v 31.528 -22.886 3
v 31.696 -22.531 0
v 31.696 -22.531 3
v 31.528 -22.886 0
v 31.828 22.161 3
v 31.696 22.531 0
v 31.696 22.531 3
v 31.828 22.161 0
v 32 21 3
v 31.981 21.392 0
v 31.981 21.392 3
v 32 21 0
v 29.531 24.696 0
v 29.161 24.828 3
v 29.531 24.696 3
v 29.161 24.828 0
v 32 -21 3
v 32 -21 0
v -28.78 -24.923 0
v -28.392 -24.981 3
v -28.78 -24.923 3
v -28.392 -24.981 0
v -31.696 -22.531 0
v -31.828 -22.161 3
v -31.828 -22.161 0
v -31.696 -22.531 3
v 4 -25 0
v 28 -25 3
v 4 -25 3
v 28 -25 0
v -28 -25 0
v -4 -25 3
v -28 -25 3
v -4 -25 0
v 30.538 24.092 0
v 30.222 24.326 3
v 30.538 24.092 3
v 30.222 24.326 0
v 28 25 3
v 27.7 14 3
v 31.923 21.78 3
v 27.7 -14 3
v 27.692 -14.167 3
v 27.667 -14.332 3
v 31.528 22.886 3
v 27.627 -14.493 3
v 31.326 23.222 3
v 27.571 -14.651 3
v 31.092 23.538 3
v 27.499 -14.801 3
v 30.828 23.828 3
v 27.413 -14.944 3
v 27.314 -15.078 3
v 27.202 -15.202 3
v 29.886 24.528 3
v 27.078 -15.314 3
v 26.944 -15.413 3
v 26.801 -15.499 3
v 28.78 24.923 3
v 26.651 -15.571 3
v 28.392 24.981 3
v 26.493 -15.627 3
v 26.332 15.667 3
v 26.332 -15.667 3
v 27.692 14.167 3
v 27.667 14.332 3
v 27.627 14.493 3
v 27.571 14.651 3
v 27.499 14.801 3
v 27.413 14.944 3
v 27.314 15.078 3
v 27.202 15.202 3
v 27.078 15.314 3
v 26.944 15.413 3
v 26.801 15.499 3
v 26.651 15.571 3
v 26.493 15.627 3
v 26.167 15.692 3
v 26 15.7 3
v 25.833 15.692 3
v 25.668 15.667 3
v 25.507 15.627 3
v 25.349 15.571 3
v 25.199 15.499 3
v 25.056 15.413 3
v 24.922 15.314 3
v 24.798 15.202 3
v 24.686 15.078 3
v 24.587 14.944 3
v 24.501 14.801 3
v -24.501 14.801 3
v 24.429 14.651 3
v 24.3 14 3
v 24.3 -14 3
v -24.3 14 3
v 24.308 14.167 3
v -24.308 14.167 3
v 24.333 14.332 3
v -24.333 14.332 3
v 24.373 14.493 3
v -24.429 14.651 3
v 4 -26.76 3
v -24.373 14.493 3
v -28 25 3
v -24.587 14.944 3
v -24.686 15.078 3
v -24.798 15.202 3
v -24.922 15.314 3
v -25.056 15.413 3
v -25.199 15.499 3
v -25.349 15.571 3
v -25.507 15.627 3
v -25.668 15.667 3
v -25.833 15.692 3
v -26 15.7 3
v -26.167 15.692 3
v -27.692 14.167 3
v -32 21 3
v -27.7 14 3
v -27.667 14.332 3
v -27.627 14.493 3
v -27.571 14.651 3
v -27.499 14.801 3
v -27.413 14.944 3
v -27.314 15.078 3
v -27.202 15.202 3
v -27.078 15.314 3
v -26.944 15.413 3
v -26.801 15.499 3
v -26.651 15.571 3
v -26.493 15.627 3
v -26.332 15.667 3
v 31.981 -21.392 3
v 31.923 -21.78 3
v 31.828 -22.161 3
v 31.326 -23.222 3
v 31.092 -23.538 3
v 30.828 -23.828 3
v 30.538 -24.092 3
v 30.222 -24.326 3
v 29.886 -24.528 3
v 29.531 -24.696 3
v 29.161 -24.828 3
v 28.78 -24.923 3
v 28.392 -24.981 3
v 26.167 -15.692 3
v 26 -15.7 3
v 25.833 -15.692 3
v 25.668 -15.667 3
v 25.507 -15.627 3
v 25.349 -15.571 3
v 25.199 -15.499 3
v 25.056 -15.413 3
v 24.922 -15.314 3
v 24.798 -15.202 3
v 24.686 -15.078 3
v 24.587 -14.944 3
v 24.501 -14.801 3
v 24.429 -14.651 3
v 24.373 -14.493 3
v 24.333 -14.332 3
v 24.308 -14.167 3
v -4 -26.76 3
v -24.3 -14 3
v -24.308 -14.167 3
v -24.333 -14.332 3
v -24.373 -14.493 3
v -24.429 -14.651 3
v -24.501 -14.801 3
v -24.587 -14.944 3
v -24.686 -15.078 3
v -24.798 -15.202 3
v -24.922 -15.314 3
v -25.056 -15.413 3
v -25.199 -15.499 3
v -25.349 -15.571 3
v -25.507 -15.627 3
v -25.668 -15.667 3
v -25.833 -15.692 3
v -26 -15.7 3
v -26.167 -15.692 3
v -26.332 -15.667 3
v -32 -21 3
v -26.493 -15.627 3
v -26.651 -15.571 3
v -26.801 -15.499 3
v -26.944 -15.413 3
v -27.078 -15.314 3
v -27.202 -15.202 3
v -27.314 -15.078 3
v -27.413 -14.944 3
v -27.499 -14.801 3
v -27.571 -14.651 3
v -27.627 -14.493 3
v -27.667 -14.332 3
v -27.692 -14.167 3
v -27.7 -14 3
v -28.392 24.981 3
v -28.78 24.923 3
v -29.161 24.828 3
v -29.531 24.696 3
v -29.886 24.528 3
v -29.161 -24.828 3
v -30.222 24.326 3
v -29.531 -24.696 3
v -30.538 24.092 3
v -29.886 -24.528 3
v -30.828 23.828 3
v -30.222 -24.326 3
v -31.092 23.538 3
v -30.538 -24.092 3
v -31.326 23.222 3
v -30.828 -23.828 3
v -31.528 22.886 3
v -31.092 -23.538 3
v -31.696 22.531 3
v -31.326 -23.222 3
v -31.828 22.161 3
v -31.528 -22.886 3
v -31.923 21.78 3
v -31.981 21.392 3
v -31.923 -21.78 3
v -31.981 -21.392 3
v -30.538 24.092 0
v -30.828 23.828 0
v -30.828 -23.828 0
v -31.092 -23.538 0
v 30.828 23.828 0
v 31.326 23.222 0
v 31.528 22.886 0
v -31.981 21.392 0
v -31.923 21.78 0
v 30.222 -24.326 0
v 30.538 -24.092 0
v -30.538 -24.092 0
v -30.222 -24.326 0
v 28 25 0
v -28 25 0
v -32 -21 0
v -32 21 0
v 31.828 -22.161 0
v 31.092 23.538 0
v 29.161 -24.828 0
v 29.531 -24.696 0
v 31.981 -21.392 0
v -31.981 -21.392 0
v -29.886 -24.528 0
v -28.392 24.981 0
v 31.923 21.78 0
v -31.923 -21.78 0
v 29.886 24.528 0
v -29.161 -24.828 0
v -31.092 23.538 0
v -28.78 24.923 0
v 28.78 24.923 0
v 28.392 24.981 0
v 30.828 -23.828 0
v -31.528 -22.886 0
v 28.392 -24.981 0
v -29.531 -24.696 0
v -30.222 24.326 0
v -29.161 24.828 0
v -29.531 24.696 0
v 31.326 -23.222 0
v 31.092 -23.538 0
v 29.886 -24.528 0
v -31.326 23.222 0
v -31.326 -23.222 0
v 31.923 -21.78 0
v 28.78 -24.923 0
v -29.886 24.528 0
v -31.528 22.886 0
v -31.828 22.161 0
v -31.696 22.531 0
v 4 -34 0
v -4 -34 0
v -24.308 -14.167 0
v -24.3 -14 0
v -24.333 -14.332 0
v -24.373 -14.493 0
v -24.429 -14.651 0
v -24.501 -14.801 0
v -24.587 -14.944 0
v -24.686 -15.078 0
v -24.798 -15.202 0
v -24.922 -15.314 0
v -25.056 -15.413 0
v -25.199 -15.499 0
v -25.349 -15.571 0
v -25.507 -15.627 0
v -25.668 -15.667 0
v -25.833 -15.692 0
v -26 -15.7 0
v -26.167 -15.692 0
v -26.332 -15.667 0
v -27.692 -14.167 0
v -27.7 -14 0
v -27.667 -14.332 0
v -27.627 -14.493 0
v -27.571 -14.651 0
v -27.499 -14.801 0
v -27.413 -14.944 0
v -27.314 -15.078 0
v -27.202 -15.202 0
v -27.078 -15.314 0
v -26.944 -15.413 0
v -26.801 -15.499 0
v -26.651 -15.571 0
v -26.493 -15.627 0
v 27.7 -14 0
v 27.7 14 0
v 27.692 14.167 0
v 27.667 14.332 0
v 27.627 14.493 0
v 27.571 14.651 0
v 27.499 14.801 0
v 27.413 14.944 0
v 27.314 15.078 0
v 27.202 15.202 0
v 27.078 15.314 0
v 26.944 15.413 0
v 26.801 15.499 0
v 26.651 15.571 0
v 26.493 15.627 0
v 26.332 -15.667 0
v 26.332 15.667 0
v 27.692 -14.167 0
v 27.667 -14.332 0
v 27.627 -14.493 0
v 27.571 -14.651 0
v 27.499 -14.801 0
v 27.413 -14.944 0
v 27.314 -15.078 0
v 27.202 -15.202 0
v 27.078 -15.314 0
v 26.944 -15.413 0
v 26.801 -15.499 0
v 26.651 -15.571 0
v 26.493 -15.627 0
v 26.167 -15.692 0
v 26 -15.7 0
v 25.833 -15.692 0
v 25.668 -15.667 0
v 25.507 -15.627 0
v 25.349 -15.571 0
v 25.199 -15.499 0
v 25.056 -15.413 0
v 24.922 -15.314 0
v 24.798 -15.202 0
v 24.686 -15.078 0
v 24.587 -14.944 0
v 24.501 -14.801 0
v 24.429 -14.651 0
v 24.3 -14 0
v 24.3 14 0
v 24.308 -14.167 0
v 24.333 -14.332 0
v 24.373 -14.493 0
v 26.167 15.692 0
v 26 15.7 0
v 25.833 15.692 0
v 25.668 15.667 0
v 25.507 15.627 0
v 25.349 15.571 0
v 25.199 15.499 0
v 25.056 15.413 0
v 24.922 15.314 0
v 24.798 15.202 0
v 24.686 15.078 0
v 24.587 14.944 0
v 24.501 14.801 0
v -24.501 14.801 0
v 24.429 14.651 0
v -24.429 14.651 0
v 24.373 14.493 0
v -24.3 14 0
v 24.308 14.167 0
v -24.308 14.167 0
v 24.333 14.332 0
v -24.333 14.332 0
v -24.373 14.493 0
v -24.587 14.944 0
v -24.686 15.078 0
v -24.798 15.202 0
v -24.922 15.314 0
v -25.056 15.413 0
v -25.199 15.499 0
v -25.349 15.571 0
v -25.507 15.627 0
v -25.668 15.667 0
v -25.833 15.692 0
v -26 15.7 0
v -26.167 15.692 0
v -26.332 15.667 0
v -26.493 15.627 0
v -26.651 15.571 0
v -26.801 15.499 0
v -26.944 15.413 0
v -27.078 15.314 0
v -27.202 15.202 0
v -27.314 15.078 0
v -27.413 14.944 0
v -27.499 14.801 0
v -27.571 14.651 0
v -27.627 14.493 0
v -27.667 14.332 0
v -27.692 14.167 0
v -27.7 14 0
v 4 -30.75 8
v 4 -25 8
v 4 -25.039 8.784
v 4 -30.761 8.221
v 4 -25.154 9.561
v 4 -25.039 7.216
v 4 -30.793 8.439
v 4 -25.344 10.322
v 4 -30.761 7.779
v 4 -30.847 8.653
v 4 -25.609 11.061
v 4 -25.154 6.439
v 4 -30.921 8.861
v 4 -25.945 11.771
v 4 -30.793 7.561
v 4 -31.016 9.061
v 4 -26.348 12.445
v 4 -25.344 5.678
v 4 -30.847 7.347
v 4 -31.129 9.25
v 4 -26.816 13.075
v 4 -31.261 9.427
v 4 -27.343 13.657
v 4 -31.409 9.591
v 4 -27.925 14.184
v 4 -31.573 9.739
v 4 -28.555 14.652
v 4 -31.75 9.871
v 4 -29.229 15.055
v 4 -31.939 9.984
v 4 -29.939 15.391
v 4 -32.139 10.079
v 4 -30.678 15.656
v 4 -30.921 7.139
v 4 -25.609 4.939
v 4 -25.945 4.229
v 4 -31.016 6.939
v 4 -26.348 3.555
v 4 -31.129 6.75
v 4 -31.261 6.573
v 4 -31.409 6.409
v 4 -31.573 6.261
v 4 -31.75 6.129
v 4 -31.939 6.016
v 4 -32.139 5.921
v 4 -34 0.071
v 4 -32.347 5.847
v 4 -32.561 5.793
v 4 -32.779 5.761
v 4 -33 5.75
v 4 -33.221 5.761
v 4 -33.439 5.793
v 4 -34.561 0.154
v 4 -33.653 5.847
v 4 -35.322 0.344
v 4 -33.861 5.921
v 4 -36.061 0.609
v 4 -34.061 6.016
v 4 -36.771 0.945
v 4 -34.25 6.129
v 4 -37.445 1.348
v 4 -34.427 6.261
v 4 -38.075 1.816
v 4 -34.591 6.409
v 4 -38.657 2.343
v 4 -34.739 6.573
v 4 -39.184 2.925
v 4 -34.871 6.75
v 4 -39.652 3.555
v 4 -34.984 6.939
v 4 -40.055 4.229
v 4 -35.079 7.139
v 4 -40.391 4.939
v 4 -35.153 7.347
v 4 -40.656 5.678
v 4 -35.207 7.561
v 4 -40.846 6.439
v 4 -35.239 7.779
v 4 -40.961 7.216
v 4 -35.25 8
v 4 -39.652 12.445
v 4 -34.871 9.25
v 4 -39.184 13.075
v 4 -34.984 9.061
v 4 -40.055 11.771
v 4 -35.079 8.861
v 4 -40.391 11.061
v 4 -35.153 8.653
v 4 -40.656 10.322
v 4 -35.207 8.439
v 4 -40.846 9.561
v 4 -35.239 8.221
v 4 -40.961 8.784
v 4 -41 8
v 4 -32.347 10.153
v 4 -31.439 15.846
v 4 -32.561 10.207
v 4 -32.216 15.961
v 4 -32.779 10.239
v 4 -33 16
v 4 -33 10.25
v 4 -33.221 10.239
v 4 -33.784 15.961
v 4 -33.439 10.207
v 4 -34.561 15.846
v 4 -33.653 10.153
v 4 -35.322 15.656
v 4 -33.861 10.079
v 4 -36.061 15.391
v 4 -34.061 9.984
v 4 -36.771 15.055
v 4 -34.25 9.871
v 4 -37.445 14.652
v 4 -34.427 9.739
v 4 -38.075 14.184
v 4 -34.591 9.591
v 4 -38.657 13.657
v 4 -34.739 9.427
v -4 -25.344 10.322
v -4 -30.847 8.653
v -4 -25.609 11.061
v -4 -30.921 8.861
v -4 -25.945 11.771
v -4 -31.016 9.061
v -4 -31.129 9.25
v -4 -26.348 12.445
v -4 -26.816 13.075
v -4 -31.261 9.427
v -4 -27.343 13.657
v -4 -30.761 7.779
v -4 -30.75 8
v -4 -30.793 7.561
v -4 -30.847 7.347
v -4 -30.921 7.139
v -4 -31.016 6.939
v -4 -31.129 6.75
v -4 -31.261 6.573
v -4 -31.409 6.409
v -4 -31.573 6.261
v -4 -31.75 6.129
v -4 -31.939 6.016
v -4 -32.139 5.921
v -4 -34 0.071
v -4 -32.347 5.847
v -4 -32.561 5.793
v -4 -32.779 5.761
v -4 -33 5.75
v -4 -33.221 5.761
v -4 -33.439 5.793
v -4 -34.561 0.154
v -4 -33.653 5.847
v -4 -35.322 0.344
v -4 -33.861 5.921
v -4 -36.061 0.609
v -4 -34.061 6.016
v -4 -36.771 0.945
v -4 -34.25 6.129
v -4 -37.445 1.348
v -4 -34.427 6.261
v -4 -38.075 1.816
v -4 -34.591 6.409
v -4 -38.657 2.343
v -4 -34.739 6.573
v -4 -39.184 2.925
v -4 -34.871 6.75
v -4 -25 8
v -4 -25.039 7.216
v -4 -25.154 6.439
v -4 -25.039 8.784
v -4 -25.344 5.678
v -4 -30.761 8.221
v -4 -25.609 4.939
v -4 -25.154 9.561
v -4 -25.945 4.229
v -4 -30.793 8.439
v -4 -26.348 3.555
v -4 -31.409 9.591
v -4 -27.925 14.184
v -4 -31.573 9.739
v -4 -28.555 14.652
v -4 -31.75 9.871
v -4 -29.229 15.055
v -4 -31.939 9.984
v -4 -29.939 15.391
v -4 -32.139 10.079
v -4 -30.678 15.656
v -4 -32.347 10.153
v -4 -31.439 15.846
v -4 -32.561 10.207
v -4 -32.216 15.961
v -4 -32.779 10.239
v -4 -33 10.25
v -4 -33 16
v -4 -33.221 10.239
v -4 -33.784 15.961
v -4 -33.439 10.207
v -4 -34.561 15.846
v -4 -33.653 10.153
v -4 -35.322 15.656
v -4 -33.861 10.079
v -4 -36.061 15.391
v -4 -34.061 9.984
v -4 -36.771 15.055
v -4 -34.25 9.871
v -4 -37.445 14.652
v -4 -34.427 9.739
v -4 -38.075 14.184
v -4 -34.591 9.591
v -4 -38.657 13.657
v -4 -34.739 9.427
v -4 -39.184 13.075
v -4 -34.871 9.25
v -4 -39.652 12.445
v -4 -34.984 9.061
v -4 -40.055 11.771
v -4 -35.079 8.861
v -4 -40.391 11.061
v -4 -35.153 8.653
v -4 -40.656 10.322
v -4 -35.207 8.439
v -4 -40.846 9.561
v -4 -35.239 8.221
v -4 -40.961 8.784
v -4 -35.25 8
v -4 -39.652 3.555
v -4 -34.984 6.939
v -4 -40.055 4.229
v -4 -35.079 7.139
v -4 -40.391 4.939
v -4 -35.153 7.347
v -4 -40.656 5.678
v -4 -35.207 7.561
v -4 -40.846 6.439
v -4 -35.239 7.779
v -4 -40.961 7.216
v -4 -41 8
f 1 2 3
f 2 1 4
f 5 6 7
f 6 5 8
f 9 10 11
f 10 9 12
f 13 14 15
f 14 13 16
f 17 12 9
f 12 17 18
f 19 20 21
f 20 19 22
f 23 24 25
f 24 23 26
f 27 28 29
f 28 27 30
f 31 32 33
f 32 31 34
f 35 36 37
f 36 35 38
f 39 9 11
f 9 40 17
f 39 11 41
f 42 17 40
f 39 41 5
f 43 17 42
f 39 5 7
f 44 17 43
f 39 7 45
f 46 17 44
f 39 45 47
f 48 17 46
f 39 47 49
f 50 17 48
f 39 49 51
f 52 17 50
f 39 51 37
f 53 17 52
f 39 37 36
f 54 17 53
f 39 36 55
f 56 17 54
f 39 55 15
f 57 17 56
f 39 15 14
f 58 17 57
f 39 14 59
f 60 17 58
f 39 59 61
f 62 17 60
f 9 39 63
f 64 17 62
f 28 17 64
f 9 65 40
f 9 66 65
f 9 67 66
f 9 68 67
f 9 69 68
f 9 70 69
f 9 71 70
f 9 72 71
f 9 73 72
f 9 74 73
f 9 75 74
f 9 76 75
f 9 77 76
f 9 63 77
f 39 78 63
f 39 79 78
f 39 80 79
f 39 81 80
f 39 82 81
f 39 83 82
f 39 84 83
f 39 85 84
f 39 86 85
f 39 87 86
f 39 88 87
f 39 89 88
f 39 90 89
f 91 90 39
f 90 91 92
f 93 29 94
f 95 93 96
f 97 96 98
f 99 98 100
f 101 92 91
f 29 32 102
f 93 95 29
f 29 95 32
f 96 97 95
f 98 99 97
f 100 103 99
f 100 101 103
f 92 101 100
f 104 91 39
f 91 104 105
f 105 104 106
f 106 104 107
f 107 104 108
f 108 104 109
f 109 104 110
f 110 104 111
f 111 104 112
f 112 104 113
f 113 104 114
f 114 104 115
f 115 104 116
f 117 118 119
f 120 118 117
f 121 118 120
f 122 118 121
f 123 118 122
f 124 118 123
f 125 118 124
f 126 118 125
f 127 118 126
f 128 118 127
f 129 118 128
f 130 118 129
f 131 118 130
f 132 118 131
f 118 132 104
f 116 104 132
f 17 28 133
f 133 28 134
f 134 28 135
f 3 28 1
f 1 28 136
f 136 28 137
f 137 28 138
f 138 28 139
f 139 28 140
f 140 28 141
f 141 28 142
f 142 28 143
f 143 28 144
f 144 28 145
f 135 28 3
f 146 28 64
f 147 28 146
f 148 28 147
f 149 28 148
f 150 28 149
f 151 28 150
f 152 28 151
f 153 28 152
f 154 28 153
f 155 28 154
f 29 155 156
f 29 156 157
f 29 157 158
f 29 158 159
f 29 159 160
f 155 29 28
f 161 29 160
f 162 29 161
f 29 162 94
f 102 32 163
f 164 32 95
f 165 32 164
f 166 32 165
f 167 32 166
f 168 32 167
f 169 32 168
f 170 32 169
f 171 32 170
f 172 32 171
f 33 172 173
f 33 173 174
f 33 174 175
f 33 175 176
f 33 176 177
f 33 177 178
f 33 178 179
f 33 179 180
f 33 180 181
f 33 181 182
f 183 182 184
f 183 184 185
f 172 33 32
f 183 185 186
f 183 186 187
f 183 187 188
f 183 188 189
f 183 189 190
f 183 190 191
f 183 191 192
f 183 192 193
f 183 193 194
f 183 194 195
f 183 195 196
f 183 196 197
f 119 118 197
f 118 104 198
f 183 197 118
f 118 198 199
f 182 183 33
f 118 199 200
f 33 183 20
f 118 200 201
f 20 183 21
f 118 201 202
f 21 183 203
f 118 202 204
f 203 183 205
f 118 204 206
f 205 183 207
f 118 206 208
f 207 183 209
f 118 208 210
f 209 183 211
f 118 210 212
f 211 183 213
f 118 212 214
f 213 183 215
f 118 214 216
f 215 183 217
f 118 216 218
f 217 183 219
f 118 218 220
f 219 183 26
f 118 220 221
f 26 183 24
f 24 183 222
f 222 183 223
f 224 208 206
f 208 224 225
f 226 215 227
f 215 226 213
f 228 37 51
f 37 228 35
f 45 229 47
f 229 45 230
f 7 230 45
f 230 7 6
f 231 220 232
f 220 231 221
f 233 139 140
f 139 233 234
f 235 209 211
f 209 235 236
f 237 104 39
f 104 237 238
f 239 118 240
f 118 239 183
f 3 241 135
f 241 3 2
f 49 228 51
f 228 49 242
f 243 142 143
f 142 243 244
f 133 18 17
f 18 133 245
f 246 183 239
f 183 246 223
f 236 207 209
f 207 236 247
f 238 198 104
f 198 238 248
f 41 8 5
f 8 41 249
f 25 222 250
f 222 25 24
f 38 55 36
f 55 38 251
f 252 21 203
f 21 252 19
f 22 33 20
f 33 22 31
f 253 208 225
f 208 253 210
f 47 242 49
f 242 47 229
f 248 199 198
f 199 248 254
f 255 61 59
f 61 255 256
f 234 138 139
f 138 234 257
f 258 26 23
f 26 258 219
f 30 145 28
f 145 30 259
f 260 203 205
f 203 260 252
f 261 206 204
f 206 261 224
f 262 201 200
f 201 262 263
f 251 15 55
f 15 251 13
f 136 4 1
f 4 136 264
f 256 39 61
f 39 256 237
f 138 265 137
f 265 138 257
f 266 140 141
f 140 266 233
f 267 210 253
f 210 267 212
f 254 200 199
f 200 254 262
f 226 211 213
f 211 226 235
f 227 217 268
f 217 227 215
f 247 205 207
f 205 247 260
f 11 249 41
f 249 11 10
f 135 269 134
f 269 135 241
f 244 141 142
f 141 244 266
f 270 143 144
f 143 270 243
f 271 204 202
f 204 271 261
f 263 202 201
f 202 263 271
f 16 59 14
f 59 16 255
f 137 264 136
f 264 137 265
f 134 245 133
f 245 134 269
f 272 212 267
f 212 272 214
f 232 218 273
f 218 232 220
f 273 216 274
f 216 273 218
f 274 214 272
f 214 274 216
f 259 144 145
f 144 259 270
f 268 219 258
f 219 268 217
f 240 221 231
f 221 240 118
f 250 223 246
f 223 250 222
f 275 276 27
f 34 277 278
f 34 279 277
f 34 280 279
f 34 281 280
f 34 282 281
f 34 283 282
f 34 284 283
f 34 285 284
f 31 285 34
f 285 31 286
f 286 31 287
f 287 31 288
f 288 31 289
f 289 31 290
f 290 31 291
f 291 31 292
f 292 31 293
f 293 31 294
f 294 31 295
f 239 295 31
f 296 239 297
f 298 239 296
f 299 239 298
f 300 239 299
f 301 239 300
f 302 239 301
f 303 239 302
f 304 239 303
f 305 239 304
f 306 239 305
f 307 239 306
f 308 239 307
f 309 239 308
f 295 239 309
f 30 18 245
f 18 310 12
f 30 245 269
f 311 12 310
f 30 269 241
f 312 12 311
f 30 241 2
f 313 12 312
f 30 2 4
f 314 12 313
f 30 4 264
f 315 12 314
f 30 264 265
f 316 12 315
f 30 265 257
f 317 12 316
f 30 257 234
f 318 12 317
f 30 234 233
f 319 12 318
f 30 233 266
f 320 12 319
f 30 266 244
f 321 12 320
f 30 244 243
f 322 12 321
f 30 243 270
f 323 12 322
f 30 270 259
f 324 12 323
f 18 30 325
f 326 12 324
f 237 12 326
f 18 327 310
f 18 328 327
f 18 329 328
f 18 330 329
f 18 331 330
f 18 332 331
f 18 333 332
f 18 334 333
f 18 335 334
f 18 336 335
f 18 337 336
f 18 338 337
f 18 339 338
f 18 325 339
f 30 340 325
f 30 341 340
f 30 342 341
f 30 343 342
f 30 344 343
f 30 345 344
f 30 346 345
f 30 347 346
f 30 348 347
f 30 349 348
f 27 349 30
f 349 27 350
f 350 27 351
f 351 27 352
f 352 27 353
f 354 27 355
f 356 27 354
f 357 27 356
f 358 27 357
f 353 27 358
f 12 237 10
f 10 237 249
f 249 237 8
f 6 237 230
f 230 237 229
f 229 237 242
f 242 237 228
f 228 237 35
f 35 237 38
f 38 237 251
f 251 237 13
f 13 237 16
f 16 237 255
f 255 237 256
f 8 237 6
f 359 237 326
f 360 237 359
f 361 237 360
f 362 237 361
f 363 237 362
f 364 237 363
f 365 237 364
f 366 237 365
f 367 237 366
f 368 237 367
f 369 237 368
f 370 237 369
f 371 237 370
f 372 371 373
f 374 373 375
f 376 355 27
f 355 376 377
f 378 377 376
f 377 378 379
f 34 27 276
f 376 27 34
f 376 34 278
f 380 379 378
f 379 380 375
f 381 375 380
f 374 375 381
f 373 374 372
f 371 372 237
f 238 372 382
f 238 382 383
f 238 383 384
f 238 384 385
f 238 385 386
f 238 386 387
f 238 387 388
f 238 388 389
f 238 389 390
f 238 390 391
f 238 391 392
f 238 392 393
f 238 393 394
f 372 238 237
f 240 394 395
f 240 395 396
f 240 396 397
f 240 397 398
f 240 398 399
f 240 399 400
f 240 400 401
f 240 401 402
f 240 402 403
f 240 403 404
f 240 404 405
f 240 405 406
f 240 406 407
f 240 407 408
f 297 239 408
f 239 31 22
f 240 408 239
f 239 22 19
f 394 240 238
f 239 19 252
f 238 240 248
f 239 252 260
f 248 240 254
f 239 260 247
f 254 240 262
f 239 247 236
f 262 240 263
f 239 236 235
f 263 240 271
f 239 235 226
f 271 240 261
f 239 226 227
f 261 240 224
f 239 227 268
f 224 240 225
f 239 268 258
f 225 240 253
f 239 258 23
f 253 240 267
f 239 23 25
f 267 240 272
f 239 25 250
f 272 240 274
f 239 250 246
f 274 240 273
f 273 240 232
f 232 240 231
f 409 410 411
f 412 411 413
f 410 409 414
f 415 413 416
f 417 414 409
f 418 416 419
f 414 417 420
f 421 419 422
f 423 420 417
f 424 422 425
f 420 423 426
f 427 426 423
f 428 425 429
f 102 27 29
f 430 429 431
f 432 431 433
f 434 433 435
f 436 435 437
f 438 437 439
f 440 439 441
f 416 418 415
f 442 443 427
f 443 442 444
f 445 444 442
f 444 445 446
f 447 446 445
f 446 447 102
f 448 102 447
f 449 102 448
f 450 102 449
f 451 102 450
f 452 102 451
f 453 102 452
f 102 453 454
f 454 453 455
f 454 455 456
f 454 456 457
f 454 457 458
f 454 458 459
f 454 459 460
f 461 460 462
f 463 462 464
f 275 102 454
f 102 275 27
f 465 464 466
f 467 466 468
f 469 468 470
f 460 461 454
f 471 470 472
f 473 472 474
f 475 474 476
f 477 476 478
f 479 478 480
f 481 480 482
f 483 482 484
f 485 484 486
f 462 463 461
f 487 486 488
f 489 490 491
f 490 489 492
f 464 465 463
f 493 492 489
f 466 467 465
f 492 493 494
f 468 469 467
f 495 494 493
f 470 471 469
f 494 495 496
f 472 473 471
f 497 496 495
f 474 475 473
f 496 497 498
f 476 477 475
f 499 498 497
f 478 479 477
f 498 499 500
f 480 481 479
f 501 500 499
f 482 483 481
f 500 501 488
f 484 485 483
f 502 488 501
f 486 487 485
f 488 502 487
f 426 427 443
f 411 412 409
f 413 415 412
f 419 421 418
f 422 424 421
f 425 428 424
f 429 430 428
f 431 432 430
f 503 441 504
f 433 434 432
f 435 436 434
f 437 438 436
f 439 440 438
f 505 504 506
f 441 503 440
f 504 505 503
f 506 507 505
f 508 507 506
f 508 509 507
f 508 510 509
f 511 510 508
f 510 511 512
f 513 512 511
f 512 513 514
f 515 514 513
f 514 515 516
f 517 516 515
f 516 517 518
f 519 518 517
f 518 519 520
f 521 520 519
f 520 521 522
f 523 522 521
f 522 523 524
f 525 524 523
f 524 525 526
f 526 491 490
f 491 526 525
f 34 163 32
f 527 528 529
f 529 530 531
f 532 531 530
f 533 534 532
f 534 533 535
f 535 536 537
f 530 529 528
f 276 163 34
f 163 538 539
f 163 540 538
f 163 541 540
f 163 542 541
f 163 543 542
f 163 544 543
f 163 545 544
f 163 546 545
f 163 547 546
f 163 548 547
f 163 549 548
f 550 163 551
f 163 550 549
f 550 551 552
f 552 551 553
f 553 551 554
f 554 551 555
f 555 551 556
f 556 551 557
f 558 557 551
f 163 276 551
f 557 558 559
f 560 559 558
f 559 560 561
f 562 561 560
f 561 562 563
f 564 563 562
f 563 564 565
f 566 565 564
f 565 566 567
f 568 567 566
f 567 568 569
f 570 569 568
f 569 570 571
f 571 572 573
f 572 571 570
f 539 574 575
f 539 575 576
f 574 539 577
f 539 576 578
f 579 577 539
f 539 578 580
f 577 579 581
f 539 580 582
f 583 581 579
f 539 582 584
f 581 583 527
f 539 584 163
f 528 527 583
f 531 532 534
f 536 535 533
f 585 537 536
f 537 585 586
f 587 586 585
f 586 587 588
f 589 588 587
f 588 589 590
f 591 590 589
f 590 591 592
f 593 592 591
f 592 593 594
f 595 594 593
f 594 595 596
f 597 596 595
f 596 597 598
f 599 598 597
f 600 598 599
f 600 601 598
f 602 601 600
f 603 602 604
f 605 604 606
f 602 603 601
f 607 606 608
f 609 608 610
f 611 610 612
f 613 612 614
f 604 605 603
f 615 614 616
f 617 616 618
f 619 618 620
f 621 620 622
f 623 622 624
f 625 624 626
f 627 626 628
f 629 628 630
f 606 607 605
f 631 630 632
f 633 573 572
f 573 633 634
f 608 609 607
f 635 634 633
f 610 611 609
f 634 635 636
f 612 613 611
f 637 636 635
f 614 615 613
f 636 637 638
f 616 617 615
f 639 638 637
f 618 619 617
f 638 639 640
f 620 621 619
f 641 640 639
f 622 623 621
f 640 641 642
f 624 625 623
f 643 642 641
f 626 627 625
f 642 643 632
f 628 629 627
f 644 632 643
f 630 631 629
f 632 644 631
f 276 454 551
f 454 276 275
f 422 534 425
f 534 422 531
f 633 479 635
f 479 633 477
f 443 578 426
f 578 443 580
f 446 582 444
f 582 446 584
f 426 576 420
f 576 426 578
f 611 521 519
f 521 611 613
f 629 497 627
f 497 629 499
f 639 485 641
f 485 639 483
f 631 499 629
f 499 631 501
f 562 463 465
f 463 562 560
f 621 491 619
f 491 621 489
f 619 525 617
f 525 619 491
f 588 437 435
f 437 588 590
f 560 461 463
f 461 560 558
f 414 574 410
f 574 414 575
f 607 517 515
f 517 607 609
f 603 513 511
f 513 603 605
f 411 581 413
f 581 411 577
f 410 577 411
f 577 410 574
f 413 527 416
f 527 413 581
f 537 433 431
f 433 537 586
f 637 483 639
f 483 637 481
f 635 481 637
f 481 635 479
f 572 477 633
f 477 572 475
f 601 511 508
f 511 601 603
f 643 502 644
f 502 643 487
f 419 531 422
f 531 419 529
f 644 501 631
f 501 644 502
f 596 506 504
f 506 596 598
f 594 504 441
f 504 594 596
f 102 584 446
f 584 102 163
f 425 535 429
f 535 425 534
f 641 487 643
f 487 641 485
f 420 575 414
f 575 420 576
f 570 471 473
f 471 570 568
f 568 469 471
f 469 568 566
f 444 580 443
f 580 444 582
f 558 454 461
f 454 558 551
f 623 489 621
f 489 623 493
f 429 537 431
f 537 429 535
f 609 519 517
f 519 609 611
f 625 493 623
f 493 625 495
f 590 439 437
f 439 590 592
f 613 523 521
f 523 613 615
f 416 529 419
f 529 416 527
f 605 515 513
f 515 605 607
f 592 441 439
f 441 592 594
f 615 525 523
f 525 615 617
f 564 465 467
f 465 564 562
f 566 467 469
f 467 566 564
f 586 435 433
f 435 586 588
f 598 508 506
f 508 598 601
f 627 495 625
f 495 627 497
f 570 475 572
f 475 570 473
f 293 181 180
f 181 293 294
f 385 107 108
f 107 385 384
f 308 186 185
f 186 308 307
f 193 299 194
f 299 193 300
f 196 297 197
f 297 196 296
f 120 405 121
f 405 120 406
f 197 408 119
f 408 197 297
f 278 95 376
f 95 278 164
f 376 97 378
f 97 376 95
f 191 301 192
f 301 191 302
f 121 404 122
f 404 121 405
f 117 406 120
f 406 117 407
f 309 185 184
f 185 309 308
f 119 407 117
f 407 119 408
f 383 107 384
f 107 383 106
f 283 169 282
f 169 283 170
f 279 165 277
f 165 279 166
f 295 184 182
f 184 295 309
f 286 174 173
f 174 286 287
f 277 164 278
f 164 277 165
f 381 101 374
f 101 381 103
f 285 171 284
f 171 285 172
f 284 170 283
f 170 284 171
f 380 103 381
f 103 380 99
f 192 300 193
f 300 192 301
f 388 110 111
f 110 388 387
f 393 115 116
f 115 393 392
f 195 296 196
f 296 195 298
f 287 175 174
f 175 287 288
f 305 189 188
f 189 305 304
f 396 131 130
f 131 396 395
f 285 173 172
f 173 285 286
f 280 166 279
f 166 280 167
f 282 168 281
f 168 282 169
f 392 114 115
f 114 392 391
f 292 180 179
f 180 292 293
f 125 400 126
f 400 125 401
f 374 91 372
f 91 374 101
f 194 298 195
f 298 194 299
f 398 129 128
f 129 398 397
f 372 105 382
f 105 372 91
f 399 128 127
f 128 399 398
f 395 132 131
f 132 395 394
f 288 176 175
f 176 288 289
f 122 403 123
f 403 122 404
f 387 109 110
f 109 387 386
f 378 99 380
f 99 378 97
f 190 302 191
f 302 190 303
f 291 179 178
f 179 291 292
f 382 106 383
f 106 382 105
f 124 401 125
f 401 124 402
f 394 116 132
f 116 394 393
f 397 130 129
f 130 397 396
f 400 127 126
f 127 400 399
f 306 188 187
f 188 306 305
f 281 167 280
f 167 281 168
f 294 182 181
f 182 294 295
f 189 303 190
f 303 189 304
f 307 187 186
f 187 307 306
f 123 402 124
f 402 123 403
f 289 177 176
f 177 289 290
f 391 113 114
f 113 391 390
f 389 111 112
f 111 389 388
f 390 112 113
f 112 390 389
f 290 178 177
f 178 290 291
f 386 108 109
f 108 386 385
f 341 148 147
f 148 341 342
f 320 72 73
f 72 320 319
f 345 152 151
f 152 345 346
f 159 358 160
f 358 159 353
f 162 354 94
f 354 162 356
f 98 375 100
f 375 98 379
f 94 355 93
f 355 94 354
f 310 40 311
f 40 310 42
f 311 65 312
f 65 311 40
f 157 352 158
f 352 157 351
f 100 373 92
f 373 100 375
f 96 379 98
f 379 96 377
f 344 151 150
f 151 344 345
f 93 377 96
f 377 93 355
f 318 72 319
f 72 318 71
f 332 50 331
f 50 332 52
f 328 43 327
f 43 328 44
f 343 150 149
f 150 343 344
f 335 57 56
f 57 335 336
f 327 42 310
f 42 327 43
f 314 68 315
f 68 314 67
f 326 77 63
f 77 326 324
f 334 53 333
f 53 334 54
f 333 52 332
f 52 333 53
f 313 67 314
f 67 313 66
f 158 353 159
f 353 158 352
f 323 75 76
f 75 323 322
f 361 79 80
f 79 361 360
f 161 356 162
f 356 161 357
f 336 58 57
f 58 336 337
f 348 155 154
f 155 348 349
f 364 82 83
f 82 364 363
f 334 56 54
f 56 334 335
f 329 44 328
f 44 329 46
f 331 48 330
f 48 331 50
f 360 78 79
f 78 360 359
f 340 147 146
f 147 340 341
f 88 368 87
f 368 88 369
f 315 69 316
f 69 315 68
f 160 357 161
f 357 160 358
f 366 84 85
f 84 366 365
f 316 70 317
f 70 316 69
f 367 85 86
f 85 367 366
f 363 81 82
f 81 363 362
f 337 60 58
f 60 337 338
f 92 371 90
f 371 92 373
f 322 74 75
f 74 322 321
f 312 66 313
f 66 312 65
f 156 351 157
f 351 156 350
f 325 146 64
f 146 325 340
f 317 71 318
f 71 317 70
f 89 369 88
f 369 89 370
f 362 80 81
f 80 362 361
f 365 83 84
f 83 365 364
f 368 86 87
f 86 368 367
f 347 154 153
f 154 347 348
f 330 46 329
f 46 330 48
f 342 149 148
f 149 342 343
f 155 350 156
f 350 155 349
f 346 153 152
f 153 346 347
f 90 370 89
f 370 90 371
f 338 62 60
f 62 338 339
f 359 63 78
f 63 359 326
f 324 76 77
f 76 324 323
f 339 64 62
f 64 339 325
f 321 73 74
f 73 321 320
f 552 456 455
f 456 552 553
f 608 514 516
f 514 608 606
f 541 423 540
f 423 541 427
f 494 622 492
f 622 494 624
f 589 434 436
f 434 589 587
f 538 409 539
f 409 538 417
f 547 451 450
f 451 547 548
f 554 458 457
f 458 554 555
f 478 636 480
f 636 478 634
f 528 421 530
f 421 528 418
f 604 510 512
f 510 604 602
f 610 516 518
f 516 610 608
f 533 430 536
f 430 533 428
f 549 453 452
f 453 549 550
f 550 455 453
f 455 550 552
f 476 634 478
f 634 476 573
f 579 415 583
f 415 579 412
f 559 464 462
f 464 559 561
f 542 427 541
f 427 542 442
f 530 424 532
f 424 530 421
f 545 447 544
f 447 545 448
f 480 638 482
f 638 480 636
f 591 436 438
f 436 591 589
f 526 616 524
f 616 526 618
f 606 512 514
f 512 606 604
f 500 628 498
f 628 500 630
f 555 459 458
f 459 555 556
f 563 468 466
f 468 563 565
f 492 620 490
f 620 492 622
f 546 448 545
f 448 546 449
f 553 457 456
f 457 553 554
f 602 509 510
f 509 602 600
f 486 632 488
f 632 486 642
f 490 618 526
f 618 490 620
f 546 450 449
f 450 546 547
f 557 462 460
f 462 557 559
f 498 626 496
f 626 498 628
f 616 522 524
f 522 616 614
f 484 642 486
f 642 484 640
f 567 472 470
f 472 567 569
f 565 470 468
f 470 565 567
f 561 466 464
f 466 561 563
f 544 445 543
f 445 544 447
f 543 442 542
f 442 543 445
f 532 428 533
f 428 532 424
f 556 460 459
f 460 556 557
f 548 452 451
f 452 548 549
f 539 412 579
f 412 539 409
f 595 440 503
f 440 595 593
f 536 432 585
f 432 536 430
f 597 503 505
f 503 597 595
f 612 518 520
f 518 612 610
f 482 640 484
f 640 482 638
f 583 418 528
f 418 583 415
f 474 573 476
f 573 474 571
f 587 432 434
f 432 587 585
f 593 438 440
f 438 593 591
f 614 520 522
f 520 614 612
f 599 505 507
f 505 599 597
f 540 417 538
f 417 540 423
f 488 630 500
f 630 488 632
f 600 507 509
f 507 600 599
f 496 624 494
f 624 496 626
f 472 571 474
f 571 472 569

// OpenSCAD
// file: common.scad
// Shared dimensions in mm; FDM fit allowances are design choices, not tolerances
// guaranteed by vendors. Exact mower model/serial and printer remain unknown.
// 76.2 x 38.1 rectangular rail is an UNVERIFIED selected envelope, not a
// specification for all TimeCutters (Toro also sells C-channel frames).
$fn = 64;
frame_rail_w = 76.2;                // depth wrapped by square U-bolt
frame_rail_h = 38.1;                // contact face width between U-bolt legs
frame_ubolt_inside_w = 40;
frame_ubolt_leg_nominal_d = 8;
frame_ubolt_center_pitch = frame_ubolt_inside_w + frame_ubolt_leg_nominal_d;
frame_ubolt_leg_hole_d = 9;
frame_ubolt_backing_t = 3;
frame_ubolt_washer_t = 2.4;
frame_ubolt_nut_h = 8;
frame_ubolt_thread_projection = 3;  // beyond full nut, not a second nut engagement
// Four-bolt printed steering-bar clamp. The 25.4 mm tube is only a coupon default;
// measure the actual lap-bar tube and tune its fit before printing working clamps.
clamp_tube_od_mm = 25.4;
clamp_tube_clearance_mm = 0.4;
clamp_shell_mm = 10;
clamp_bolt_x_mm = 18;
clamp_bolt_clear_mm = 5.5;          // four M5 clamp bolts
clamp_nut_af_mm = 8.2;
clamp_nut_depth_mm = 4.8;
clamp_pin_bore_mm = 6.6;
clamp_rod_eye_length_mm = 32;
clamp_rod_eye_width_mm = 20;
clamp_rod_eye_t_mm = 8;             // printed single-eye lug thickness
clamp_rod_gap_mm = 9;               // yoke clearance around the eye, nominally 0.5 mm per side
clamp_yoke_span_mm = 42;            // ear width clears the eye through its planar sweep
clamp_yoke_reach_mm = 42;           // total outboard yoke extension from the clamp body
clamp_yoke_root_overlap_mm = 4;     // fuse each printed ear into its half beyond the bar opening
clamp_yoke_sweep_clearance_mm = 1;
clamp_gauge_wall_mm = 5;
clamp_r_mm = (clamp_tube_od_mm + clamp_tube_clearance_mm) / 2;
clamp_half_h_mm = clamp_r_mm + clamp_shell_mm;
clamp_bolt_y_mm = clamp_r_mm + 7;
clamp_w_mm = 2 * (clamp_bolt_y_mm + clamp_shell_mm);
clamp_l_mm = 2 * (clamp_bolt_x_mm + 7);
clamp_gauge_index = 1;

function clamp_rod_eye_sweep_radius_mm() =
    sqrt(pow(clamp_rod_eye_length_mm/2, 2) + pow(clamp_rod_eye_width_mm/2, 2));

// Exact listing's RDS51150 stationary-holder SIDE drawing, not bottom holes.
// RDS51150 vs purchased RDS51150SG revision must be confirmed with the coupon.
servo_side_hole_pitch = 24;
servo_side_hole_clear_d = 2.9;       // M2.5 with 0.4 mm diametral allowance
servo_side_tool_bore_d = 6;
m3_clear = 3.4;
m4_clear = 4.5;
m5_clear = 5.5;
m6_clear = 6.4;
m8_clear = 8.4;
wall = 5;
clearance = 0.4;

function frame_ubolt_required_leg_length(saddle_t) =
    frame_rail_w + saddle_t + frame_ubolt_backing_t + frame_ubolt_washer_t +
    frame_ubolt_nut_h + frame_ubolt_thread_projection;
function saddle_width(pitch, bore) = pitch + bore + 2 * wall;


module slot(d, len, h) {
    hull() for (x = [-len / 2, len / 2]) translate([x, 0, 0]) cylinder(h = h, d = d);
}
module plate(l, w, t, r = 6) {
    assert(l >= 2 * r && w >= 2 * r && t > 0);
    hull() for (x = [-1, 1], y = [-1, 1])
        translate([x * (l / 2 - r), y * (w / 2 - r), 0]) cylinder(h = t, r = r);
}
module frame_saddle(l, t, span, leg = frame_ubolt_leg_hole_d) {
    assert(l / 2 - span / 2 - leg / 2 >= 5, "U-bolt hole too near saddle end");
    plate(l, saddle_width(frame_ubolt_center_pitch, leg), t, 8);
}
module frame_ubolt_slots(t, span, leg = frame_ubolt_leg_hole_d) {
    for (x = [-1, 1], y = [-1, 1])
        translate([x * span / 2, y * frame_ubolt_center_pitch / 2, -1]) cylinder(h = t + 2, d = leg);
}
// main file
// Drill-to-fit carrier for an UNKNOWN sensor PCB/housing (BNO085, VL53L0X,
// BME280, INA3221 or ZED-F9P carrier). No vendor board pattern is assumed.
// Use camera_mount.scad's foot and M4 pivot, or bolt flat via side slots.
// FDM ASA. Rigidly lock an IMU after calibration; do not use foam isolation.
// Small bare boards require insulating standoffs and suitable weather protection.
include <common.scad>
sensor_plate_w = 64;
sensor_plate_h = 50;
sensor_plate_t = 3;
sensor_pcb_holes = [];              // measured [x,y] coordinates, origin plate centre
sensor_pcb_bore = 3.4;              // match actual PCB screw size; default M3 drilling blank
sensor_hinge_y = -sensor_plate_h / 2 - 8;

module sensor_carrier() {
    difference() {
        union() {
            plate(sensor_plate_w, sensor_plate_h, sensor_plate_t, 4);
            translate([-4, sensor_hinge_y - 1, 0]) cube([8, 13, sensor_plate_t]);
            translate([-4, sensor_hinge_y, 8]) rotate([0, 90, 0]) cylinder(r = 8, h = 8);
        }
        for (p = sensor_pcb_holes) {
            assert(abs(p[0]) <= sensor_plate_w / 2 - 12 &&
                   abs(p[1]) <= sensor_plate_h / 2 - 5,
                   "PCB hole would collide with tie slots or plate edge");
            translate([p[0], p[1], -1]) cylinder(d = sensor_pcb_bore, h = sensor_plate_t + 2);
        }
        // These are enclosure straps / M3 mounting slots, NOT claimed PCB holes.
        for (x = [-sensor_plate_w / 2 + 6, sensor_plate_w / 2 - 6])
            translate([x, 0, -1]) rotate([0, 0, 90]) slot(3.4, 28, sensor_plate_t + 2);
        translate([-6, sensor_hinge_y, 8]) rotate([0, 90, 0]) cylinder(d = m4_clear, h = 12);
    }
}

module sensor_carrier_placed(angle = 90) {
    translate([0, 0, 16]) rotate([angle, 0, 0])
        translate([0, -sensor_hinge_y, -8]) sensor_carrier();
}

sensor_carrier();
